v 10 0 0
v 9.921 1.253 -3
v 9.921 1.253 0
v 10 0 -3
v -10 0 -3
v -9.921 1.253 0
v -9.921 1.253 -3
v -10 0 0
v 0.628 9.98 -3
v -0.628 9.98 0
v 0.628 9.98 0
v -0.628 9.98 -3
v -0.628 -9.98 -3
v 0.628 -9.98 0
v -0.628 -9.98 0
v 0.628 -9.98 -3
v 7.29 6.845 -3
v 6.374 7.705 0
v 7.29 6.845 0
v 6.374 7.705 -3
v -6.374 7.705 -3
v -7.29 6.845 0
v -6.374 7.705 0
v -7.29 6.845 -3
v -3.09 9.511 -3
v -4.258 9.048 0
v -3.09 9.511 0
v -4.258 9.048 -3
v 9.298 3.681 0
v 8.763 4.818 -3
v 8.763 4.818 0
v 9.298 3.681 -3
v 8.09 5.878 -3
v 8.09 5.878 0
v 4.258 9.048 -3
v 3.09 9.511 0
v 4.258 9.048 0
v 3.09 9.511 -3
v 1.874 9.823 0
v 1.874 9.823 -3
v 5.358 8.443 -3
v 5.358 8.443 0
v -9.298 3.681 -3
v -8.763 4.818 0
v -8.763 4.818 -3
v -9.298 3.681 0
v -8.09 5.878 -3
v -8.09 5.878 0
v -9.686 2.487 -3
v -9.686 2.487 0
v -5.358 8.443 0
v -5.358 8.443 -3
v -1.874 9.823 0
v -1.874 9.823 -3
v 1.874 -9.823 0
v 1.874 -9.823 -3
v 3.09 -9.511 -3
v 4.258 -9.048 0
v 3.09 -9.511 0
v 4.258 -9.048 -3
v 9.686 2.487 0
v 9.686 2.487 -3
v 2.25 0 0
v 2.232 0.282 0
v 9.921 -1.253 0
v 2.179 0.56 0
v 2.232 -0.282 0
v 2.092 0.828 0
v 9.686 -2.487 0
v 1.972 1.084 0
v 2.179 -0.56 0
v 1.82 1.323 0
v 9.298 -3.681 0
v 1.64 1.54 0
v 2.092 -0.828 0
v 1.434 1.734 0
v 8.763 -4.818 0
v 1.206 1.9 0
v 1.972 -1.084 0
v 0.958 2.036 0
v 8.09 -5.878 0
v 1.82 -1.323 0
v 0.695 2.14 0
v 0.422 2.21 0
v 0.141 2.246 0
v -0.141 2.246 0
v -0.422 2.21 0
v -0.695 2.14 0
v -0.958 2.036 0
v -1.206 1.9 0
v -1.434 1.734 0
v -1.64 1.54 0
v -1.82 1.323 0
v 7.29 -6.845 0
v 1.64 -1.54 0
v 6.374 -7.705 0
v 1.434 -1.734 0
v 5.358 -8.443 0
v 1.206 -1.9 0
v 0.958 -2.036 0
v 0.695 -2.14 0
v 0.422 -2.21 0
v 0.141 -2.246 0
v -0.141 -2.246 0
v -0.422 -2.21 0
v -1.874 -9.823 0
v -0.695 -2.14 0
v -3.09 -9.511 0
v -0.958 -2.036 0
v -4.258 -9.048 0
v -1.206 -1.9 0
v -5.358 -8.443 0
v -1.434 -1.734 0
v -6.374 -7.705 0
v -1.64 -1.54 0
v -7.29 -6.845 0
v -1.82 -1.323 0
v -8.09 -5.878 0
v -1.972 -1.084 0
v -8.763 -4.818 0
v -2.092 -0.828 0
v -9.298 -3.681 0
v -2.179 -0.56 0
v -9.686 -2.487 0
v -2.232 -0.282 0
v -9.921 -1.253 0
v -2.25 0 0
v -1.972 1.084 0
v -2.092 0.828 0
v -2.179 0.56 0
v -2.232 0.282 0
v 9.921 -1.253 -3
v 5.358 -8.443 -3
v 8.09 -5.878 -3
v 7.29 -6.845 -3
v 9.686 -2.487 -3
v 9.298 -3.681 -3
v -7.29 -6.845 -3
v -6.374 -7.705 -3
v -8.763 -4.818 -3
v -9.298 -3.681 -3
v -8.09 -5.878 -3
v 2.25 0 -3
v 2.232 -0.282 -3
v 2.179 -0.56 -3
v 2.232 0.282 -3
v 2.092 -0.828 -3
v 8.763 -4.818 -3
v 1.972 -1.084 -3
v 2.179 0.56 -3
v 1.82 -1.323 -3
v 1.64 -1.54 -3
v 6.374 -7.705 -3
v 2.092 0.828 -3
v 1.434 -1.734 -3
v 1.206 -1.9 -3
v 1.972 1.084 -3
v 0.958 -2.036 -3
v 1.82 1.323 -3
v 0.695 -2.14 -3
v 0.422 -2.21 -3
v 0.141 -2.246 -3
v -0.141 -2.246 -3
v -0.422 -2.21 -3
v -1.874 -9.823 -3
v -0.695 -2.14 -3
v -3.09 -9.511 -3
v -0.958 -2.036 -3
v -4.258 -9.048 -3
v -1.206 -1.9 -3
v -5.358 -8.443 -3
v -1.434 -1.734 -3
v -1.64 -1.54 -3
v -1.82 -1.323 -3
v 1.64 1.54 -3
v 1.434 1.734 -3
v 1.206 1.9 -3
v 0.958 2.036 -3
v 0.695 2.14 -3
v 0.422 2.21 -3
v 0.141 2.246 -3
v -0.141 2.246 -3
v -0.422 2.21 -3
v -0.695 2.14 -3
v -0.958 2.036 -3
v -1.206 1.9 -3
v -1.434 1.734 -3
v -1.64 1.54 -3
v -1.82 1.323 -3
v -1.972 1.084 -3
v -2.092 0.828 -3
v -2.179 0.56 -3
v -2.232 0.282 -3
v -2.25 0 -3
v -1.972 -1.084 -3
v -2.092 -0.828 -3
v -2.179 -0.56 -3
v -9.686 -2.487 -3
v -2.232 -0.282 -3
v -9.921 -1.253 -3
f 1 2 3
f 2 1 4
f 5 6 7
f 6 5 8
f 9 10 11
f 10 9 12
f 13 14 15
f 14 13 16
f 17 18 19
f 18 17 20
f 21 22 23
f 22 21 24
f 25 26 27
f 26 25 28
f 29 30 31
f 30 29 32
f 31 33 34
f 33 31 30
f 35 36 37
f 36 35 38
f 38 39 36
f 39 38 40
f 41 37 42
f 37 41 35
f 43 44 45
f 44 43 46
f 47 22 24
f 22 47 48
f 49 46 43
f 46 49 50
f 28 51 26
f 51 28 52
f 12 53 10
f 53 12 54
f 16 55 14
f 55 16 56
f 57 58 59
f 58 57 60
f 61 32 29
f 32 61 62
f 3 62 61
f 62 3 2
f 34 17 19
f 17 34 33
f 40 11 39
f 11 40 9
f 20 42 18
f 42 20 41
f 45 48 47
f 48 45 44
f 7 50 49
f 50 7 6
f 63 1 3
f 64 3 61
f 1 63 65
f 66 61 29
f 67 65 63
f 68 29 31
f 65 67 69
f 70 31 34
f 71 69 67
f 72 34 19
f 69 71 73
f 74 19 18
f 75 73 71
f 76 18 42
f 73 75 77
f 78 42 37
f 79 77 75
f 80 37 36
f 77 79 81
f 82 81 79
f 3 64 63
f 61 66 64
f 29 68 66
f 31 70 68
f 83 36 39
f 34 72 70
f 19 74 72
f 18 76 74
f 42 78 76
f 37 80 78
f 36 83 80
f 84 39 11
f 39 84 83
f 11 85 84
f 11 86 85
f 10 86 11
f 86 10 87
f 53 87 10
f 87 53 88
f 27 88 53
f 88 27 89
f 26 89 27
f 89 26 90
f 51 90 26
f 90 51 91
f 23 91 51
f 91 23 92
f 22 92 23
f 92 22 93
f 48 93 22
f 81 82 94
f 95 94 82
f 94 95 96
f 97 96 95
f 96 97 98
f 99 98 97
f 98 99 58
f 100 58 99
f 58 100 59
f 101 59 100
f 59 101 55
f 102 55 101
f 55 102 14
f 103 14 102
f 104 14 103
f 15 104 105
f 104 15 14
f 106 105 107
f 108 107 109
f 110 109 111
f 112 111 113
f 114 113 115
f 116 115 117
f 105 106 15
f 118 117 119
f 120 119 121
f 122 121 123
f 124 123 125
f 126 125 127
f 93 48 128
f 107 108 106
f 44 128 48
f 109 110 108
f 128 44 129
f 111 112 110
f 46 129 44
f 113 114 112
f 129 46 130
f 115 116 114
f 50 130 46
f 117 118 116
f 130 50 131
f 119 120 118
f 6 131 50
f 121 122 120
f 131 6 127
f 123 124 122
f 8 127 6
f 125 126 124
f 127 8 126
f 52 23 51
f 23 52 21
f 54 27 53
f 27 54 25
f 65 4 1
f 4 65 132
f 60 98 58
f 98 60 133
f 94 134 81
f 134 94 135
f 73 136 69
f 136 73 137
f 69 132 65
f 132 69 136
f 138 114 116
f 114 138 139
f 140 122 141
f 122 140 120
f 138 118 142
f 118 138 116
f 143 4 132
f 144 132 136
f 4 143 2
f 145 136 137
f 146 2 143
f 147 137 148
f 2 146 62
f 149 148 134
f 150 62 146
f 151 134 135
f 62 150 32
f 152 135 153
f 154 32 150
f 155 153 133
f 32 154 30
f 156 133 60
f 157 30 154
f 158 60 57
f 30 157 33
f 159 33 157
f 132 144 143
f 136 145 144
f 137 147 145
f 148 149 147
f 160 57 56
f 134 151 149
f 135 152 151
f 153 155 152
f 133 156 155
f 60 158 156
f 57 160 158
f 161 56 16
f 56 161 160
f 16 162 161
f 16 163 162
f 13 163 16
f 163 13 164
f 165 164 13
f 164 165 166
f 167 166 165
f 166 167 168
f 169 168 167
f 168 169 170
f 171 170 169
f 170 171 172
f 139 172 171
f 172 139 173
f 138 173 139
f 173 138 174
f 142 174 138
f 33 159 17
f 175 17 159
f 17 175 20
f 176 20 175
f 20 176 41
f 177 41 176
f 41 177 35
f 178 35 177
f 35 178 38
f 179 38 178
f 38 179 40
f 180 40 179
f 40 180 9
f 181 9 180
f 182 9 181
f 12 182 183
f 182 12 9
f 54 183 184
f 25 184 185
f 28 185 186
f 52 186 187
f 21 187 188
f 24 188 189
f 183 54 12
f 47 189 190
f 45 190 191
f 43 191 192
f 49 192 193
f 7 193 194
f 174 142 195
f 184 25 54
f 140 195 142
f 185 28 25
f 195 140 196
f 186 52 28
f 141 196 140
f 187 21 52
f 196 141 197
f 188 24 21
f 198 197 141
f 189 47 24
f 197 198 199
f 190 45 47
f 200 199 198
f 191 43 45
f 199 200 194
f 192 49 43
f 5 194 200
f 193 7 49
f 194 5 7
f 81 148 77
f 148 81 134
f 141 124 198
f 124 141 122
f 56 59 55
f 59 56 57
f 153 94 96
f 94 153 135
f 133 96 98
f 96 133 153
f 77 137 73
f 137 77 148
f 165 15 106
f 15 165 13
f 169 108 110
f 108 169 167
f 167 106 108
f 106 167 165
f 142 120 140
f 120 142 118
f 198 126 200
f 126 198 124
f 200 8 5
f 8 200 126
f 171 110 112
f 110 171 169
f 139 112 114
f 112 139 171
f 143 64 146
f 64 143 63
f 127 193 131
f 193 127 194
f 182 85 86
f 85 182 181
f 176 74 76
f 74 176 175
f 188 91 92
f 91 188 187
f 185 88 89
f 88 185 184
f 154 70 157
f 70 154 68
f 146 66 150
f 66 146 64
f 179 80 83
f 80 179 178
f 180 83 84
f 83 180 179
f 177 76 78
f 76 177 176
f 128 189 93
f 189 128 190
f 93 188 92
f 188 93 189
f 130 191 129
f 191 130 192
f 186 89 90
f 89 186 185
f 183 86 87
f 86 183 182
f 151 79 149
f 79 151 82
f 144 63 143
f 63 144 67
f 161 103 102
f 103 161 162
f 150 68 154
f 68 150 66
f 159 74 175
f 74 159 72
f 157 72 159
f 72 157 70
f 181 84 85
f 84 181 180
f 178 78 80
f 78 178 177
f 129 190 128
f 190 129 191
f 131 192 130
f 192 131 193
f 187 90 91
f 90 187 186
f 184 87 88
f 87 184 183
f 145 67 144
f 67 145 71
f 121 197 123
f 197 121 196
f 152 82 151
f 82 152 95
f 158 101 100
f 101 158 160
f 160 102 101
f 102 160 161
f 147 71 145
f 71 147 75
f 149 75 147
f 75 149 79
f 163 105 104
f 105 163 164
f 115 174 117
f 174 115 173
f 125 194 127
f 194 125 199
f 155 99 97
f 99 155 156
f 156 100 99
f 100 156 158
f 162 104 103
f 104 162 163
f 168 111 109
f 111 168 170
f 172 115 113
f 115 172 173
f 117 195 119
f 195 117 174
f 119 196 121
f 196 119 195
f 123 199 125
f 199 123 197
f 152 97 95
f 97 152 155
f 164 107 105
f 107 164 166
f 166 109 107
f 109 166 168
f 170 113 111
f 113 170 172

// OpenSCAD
$fn = 50;


difference() {
	union() {
		translate(v = [0, 0, -3.0000000000]) {
			cylinder(h = 3, r = 10.0000000000);
		}
		cylinder(h = 0, r = 13.0000000000);
	}
	union() {
		#translate(v = [0, 0, -3]) {
			cylinder(h = 3, r = 2.2500000000);
		}
	}
}
